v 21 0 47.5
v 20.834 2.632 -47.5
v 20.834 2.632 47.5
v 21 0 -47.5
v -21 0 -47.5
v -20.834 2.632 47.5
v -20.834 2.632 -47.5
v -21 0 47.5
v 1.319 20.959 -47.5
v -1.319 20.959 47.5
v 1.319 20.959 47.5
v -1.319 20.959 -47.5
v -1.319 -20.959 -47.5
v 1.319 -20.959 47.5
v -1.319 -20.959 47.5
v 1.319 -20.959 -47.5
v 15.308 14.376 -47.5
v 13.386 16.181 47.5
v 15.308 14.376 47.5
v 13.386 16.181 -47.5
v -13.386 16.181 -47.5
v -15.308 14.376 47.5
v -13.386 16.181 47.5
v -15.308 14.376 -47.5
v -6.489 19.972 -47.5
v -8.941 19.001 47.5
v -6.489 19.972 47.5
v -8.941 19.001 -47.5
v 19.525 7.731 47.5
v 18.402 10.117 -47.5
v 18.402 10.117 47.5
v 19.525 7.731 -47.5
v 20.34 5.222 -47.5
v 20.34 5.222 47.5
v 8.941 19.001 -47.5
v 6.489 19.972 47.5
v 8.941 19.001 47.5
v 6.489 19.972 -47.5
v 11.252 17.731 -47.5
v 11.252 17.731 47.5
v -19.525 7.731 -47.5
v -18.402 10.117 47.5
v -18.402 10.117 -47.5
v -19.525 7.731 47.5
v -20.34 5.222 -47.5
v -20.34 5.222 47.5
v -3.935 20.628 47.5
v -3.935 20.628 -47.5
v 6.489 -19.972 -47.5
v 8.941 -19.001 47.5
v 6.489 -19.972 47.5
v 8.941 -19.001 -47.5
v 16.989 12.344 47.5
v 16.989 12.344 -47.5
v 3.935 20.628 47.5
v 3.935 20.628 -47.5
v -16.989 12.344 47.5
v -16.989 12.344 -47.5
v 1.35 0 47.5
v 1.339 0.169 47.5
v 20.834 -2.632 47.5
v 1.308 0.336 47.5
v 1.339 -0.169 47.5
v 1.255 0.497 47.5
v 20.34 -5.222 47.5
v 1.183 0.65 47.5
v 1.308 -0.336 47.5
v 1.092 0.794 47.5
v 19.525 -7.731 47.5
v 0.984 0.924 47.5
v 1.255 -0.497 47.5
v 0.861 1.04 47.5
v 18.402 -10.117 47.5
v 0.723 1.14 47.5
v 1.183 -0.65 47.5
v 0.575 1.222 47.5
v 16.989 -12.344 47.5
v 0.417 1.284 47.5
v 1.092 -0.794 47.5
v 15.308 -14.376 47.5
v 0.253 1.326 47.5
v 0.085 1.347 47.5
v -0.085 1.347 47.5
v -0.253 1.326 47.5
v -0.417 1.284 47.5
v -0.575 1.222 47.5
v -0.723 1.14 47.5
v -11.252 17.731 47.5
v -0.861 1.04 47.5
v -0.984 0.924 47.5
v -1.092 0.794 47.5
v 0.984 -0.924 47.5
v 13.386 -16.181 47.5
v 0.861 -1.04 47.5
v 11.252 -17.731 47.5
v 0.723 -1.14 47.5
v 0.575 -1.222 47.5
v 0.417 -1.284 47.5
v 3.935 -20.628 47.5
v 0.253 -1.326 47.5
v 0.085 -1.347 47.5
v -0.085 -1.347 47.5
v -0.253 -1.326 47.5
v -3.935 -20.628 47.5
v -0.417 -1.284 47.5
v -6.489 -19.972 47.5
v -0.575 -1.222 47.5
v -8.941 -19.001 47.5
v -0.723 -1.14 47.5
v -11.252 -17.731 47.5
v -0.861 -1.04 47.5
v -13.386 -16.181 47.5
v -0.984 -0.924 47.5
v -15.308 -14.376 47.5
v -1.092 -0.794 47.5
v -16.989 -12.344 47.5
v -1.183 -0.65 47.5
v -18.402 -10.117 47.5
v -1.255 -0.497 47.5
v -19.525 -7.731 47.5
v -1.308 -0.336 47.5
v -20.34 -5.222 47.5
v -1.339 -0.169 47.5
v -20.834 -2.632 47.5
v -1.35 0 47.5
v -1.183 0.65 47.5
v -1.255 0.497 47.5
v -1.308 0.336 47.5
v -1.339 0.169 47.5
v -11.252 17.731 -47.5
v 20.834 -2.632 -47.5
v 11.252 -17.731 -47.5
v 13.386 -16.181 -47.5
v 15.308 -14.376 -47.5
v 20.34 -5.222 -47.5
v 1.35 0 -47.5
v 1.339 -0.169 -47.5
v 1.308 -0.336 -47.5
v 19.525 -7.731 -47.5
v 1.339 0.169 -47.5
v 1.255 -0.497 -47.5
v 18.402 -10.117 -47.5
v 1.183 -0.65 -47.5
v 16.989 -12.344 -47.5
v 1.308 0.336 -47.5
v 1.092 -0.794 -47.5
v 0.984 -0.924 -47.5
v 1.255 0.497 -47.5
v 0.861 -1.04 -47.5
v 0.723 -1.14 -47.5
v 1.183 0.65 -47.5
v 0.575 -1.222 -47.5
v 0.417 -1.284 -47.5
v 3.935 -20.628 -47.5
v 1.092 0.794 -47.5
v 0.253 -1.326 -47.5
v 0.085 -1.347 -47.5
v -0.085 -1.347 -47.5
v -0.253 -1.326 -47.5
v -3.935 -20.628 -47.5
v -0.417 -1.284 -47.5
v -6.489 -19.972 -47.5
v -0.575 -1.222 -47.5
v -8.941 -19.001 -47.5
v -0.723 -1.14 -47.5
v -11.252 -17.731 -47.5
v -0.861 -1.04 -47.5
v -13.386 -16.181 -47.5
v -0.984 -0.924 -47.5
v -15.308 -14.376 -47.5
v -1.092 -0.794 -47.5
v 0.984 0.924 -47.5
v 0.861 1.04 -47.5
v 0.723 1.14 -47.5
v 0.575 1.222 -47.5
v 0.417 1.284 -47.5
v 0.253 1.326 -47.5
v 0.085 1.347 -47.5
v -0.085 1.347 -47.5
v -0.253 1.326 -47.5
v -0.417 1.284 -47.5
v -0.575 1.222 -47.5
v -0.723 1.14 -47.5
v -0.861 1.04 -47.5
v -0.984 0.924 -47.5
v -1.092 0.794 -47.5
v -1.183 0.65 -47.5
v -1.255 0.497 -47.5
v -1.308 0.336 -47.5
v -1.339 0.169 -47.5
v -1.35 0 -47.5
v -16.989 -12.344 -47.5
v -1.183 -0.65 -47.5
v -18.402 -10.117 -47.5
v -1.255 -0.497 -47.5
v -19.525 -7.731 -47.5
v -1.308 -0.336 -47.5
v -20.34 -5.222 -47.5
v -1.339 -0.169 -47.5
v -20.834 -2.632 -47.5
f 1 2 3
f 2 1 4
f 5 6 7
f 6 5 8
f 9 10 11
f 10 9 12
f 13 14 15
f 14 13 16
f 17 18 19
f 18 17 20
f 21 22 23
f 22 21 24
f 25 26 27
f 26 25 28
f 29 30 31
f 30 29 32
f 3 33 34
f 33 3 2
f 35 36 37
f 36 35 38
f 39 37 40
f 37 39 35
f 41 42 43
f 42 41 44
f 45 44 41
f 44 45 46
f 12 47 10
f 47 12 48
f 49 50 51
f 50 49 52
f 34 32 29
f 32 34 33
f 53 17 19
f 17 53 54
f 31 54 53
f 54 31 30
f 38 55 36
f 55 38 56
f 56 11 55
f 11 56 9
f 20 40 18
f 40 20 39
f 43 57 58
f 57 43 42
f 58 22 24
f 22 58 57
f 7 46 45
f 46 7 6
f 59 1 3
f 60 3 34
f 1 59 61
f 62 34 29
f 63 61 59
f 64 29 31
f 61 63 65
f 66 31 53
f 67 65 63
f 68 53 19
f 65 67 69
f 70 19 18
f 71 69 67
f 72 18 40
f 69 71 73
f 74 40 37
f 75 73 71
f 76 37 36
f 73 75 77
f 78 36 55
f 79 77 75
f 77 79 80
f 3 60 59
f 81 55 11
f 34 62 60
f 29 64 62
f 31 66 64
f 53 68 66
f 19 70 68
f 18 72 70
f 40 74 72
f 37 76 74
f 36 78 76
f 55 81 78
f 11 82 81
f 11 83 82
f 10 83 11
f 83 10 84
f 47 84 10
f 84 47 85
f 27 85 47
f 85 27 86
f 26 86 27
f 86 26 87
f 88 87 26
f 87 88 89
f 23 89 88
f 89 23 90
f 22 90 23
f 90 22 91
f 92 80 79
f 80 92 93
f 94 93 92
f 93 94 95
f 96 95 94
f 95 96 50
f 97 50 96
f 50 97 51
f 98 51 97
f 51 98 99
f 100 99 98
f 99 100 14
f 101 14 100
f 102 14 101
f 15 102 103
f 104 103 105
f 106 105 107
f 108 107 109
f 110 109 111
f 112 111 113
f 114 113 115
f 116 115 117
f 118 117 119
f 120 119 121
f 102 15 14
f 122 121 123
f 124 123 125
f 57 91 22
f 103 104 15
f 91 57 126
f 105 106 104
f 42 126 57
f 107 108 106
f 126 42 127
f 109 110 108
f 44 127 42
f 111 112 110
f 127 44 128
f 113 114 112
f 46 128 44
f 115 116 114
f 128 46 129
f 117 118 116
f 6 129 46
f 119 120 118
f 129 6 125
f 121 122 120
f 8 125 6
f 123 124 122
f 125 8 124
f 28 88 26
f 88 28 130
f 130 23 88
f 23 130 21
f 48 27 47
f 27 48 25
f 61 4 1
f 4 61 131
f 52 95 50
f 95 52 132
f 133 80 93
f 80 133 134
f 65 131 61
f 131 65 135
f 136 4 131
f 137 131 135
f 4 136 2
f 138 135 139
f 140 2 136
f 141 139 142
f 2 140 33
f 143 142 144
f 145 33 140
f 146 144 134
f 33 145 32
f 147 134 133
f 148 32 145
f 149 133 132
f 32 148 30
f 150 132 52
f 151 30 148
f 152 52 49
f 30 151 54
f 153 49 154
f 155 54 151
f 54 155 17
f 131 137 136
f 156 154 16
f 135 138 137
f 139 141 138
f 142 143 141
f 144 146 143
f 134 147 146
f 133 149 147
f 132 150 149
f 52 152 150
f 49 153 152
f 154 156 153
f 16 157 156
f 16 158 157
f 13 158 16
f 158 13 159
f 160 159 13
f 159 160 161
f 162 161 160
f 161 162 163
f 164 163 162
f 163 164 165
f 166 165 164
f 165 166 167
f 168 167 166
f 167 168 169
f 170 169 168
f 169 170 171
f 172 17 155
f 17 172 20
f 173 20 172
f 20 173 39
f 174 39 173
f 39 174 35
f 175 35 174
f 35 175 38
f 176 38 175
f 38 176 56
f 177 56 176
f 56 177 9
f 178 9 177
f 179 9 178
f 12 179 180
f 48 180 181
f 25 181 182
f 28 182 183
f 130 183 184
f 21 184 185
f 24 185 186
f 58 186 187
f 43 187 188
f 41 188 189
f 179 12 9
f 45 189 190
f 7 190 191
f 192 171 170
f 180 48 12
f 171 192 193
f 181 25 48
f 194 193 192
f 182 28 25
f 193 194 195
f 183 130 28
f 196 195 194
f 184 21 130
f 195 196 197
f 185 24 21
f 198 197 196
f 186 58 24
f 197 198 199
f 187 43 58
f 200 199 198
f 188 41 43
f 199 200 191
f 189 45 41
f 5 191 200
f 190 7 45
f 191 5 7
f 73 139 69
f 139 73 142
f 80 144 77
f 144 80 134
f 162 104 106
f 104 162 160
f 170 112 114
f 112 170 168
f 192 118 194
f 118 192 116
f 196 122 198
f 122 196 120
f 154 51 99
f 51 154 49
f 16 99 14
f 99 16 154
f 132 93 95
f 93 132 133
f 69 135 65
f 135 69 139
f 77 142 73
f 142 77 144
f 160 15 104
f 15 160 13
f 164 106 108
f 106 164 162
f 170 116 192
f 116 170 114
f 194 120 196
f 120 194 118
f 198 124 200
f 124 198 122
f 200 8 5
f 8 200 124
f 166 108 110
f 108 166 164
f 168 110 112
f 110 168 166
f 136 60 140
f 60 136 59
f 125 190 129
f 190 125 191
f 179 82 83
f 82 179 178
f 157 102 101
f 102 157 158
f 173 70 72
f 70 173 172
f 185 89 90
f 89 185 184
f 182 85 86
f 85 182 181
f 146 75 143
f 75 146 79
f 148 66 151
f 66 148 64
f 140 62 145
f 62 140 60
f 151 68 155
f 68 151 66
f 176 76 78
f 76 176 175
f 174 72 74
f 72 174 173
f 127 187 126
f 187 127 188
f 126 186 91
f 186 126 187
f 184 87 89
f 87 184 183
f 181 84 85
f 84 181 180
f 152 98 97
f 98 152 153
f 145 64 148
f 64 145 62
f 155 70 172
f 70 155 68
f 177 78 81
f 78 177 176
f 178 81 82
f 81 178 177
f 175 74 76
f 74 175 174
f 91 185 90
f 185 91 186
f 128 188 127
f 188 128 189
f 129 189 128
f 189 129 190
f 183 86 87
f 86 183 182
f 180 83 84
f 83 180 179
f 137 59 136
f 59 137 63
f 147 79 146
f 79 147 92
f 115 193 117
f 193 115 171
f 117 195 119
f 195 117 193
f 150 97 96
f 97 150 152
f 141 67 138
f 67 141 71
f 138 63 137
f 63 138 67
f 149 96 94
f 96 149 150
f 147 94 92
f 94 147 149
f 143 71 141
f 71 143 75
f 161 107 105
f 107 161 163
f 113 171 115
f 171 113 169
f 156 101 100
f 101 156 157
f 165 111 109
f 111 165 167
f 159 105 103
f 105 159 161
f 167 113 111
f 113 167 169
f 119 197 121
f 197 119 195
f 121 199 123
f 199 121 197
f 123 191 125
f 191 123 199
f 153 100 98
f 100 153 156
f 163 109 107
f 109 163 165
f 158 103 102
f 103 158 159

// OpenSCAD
$fn = 50;


difference() {
	union() {
		translate(v = [0, 0, -47.5000000000]) {
			cylinder(h = 95, r = 21.0000000000);
		}
	}
	union() {
		translate(v = [0, 0, -100.0000000000]) {
			cylinder(h = 200, r = 1.3500000000);
		}
	}
}
